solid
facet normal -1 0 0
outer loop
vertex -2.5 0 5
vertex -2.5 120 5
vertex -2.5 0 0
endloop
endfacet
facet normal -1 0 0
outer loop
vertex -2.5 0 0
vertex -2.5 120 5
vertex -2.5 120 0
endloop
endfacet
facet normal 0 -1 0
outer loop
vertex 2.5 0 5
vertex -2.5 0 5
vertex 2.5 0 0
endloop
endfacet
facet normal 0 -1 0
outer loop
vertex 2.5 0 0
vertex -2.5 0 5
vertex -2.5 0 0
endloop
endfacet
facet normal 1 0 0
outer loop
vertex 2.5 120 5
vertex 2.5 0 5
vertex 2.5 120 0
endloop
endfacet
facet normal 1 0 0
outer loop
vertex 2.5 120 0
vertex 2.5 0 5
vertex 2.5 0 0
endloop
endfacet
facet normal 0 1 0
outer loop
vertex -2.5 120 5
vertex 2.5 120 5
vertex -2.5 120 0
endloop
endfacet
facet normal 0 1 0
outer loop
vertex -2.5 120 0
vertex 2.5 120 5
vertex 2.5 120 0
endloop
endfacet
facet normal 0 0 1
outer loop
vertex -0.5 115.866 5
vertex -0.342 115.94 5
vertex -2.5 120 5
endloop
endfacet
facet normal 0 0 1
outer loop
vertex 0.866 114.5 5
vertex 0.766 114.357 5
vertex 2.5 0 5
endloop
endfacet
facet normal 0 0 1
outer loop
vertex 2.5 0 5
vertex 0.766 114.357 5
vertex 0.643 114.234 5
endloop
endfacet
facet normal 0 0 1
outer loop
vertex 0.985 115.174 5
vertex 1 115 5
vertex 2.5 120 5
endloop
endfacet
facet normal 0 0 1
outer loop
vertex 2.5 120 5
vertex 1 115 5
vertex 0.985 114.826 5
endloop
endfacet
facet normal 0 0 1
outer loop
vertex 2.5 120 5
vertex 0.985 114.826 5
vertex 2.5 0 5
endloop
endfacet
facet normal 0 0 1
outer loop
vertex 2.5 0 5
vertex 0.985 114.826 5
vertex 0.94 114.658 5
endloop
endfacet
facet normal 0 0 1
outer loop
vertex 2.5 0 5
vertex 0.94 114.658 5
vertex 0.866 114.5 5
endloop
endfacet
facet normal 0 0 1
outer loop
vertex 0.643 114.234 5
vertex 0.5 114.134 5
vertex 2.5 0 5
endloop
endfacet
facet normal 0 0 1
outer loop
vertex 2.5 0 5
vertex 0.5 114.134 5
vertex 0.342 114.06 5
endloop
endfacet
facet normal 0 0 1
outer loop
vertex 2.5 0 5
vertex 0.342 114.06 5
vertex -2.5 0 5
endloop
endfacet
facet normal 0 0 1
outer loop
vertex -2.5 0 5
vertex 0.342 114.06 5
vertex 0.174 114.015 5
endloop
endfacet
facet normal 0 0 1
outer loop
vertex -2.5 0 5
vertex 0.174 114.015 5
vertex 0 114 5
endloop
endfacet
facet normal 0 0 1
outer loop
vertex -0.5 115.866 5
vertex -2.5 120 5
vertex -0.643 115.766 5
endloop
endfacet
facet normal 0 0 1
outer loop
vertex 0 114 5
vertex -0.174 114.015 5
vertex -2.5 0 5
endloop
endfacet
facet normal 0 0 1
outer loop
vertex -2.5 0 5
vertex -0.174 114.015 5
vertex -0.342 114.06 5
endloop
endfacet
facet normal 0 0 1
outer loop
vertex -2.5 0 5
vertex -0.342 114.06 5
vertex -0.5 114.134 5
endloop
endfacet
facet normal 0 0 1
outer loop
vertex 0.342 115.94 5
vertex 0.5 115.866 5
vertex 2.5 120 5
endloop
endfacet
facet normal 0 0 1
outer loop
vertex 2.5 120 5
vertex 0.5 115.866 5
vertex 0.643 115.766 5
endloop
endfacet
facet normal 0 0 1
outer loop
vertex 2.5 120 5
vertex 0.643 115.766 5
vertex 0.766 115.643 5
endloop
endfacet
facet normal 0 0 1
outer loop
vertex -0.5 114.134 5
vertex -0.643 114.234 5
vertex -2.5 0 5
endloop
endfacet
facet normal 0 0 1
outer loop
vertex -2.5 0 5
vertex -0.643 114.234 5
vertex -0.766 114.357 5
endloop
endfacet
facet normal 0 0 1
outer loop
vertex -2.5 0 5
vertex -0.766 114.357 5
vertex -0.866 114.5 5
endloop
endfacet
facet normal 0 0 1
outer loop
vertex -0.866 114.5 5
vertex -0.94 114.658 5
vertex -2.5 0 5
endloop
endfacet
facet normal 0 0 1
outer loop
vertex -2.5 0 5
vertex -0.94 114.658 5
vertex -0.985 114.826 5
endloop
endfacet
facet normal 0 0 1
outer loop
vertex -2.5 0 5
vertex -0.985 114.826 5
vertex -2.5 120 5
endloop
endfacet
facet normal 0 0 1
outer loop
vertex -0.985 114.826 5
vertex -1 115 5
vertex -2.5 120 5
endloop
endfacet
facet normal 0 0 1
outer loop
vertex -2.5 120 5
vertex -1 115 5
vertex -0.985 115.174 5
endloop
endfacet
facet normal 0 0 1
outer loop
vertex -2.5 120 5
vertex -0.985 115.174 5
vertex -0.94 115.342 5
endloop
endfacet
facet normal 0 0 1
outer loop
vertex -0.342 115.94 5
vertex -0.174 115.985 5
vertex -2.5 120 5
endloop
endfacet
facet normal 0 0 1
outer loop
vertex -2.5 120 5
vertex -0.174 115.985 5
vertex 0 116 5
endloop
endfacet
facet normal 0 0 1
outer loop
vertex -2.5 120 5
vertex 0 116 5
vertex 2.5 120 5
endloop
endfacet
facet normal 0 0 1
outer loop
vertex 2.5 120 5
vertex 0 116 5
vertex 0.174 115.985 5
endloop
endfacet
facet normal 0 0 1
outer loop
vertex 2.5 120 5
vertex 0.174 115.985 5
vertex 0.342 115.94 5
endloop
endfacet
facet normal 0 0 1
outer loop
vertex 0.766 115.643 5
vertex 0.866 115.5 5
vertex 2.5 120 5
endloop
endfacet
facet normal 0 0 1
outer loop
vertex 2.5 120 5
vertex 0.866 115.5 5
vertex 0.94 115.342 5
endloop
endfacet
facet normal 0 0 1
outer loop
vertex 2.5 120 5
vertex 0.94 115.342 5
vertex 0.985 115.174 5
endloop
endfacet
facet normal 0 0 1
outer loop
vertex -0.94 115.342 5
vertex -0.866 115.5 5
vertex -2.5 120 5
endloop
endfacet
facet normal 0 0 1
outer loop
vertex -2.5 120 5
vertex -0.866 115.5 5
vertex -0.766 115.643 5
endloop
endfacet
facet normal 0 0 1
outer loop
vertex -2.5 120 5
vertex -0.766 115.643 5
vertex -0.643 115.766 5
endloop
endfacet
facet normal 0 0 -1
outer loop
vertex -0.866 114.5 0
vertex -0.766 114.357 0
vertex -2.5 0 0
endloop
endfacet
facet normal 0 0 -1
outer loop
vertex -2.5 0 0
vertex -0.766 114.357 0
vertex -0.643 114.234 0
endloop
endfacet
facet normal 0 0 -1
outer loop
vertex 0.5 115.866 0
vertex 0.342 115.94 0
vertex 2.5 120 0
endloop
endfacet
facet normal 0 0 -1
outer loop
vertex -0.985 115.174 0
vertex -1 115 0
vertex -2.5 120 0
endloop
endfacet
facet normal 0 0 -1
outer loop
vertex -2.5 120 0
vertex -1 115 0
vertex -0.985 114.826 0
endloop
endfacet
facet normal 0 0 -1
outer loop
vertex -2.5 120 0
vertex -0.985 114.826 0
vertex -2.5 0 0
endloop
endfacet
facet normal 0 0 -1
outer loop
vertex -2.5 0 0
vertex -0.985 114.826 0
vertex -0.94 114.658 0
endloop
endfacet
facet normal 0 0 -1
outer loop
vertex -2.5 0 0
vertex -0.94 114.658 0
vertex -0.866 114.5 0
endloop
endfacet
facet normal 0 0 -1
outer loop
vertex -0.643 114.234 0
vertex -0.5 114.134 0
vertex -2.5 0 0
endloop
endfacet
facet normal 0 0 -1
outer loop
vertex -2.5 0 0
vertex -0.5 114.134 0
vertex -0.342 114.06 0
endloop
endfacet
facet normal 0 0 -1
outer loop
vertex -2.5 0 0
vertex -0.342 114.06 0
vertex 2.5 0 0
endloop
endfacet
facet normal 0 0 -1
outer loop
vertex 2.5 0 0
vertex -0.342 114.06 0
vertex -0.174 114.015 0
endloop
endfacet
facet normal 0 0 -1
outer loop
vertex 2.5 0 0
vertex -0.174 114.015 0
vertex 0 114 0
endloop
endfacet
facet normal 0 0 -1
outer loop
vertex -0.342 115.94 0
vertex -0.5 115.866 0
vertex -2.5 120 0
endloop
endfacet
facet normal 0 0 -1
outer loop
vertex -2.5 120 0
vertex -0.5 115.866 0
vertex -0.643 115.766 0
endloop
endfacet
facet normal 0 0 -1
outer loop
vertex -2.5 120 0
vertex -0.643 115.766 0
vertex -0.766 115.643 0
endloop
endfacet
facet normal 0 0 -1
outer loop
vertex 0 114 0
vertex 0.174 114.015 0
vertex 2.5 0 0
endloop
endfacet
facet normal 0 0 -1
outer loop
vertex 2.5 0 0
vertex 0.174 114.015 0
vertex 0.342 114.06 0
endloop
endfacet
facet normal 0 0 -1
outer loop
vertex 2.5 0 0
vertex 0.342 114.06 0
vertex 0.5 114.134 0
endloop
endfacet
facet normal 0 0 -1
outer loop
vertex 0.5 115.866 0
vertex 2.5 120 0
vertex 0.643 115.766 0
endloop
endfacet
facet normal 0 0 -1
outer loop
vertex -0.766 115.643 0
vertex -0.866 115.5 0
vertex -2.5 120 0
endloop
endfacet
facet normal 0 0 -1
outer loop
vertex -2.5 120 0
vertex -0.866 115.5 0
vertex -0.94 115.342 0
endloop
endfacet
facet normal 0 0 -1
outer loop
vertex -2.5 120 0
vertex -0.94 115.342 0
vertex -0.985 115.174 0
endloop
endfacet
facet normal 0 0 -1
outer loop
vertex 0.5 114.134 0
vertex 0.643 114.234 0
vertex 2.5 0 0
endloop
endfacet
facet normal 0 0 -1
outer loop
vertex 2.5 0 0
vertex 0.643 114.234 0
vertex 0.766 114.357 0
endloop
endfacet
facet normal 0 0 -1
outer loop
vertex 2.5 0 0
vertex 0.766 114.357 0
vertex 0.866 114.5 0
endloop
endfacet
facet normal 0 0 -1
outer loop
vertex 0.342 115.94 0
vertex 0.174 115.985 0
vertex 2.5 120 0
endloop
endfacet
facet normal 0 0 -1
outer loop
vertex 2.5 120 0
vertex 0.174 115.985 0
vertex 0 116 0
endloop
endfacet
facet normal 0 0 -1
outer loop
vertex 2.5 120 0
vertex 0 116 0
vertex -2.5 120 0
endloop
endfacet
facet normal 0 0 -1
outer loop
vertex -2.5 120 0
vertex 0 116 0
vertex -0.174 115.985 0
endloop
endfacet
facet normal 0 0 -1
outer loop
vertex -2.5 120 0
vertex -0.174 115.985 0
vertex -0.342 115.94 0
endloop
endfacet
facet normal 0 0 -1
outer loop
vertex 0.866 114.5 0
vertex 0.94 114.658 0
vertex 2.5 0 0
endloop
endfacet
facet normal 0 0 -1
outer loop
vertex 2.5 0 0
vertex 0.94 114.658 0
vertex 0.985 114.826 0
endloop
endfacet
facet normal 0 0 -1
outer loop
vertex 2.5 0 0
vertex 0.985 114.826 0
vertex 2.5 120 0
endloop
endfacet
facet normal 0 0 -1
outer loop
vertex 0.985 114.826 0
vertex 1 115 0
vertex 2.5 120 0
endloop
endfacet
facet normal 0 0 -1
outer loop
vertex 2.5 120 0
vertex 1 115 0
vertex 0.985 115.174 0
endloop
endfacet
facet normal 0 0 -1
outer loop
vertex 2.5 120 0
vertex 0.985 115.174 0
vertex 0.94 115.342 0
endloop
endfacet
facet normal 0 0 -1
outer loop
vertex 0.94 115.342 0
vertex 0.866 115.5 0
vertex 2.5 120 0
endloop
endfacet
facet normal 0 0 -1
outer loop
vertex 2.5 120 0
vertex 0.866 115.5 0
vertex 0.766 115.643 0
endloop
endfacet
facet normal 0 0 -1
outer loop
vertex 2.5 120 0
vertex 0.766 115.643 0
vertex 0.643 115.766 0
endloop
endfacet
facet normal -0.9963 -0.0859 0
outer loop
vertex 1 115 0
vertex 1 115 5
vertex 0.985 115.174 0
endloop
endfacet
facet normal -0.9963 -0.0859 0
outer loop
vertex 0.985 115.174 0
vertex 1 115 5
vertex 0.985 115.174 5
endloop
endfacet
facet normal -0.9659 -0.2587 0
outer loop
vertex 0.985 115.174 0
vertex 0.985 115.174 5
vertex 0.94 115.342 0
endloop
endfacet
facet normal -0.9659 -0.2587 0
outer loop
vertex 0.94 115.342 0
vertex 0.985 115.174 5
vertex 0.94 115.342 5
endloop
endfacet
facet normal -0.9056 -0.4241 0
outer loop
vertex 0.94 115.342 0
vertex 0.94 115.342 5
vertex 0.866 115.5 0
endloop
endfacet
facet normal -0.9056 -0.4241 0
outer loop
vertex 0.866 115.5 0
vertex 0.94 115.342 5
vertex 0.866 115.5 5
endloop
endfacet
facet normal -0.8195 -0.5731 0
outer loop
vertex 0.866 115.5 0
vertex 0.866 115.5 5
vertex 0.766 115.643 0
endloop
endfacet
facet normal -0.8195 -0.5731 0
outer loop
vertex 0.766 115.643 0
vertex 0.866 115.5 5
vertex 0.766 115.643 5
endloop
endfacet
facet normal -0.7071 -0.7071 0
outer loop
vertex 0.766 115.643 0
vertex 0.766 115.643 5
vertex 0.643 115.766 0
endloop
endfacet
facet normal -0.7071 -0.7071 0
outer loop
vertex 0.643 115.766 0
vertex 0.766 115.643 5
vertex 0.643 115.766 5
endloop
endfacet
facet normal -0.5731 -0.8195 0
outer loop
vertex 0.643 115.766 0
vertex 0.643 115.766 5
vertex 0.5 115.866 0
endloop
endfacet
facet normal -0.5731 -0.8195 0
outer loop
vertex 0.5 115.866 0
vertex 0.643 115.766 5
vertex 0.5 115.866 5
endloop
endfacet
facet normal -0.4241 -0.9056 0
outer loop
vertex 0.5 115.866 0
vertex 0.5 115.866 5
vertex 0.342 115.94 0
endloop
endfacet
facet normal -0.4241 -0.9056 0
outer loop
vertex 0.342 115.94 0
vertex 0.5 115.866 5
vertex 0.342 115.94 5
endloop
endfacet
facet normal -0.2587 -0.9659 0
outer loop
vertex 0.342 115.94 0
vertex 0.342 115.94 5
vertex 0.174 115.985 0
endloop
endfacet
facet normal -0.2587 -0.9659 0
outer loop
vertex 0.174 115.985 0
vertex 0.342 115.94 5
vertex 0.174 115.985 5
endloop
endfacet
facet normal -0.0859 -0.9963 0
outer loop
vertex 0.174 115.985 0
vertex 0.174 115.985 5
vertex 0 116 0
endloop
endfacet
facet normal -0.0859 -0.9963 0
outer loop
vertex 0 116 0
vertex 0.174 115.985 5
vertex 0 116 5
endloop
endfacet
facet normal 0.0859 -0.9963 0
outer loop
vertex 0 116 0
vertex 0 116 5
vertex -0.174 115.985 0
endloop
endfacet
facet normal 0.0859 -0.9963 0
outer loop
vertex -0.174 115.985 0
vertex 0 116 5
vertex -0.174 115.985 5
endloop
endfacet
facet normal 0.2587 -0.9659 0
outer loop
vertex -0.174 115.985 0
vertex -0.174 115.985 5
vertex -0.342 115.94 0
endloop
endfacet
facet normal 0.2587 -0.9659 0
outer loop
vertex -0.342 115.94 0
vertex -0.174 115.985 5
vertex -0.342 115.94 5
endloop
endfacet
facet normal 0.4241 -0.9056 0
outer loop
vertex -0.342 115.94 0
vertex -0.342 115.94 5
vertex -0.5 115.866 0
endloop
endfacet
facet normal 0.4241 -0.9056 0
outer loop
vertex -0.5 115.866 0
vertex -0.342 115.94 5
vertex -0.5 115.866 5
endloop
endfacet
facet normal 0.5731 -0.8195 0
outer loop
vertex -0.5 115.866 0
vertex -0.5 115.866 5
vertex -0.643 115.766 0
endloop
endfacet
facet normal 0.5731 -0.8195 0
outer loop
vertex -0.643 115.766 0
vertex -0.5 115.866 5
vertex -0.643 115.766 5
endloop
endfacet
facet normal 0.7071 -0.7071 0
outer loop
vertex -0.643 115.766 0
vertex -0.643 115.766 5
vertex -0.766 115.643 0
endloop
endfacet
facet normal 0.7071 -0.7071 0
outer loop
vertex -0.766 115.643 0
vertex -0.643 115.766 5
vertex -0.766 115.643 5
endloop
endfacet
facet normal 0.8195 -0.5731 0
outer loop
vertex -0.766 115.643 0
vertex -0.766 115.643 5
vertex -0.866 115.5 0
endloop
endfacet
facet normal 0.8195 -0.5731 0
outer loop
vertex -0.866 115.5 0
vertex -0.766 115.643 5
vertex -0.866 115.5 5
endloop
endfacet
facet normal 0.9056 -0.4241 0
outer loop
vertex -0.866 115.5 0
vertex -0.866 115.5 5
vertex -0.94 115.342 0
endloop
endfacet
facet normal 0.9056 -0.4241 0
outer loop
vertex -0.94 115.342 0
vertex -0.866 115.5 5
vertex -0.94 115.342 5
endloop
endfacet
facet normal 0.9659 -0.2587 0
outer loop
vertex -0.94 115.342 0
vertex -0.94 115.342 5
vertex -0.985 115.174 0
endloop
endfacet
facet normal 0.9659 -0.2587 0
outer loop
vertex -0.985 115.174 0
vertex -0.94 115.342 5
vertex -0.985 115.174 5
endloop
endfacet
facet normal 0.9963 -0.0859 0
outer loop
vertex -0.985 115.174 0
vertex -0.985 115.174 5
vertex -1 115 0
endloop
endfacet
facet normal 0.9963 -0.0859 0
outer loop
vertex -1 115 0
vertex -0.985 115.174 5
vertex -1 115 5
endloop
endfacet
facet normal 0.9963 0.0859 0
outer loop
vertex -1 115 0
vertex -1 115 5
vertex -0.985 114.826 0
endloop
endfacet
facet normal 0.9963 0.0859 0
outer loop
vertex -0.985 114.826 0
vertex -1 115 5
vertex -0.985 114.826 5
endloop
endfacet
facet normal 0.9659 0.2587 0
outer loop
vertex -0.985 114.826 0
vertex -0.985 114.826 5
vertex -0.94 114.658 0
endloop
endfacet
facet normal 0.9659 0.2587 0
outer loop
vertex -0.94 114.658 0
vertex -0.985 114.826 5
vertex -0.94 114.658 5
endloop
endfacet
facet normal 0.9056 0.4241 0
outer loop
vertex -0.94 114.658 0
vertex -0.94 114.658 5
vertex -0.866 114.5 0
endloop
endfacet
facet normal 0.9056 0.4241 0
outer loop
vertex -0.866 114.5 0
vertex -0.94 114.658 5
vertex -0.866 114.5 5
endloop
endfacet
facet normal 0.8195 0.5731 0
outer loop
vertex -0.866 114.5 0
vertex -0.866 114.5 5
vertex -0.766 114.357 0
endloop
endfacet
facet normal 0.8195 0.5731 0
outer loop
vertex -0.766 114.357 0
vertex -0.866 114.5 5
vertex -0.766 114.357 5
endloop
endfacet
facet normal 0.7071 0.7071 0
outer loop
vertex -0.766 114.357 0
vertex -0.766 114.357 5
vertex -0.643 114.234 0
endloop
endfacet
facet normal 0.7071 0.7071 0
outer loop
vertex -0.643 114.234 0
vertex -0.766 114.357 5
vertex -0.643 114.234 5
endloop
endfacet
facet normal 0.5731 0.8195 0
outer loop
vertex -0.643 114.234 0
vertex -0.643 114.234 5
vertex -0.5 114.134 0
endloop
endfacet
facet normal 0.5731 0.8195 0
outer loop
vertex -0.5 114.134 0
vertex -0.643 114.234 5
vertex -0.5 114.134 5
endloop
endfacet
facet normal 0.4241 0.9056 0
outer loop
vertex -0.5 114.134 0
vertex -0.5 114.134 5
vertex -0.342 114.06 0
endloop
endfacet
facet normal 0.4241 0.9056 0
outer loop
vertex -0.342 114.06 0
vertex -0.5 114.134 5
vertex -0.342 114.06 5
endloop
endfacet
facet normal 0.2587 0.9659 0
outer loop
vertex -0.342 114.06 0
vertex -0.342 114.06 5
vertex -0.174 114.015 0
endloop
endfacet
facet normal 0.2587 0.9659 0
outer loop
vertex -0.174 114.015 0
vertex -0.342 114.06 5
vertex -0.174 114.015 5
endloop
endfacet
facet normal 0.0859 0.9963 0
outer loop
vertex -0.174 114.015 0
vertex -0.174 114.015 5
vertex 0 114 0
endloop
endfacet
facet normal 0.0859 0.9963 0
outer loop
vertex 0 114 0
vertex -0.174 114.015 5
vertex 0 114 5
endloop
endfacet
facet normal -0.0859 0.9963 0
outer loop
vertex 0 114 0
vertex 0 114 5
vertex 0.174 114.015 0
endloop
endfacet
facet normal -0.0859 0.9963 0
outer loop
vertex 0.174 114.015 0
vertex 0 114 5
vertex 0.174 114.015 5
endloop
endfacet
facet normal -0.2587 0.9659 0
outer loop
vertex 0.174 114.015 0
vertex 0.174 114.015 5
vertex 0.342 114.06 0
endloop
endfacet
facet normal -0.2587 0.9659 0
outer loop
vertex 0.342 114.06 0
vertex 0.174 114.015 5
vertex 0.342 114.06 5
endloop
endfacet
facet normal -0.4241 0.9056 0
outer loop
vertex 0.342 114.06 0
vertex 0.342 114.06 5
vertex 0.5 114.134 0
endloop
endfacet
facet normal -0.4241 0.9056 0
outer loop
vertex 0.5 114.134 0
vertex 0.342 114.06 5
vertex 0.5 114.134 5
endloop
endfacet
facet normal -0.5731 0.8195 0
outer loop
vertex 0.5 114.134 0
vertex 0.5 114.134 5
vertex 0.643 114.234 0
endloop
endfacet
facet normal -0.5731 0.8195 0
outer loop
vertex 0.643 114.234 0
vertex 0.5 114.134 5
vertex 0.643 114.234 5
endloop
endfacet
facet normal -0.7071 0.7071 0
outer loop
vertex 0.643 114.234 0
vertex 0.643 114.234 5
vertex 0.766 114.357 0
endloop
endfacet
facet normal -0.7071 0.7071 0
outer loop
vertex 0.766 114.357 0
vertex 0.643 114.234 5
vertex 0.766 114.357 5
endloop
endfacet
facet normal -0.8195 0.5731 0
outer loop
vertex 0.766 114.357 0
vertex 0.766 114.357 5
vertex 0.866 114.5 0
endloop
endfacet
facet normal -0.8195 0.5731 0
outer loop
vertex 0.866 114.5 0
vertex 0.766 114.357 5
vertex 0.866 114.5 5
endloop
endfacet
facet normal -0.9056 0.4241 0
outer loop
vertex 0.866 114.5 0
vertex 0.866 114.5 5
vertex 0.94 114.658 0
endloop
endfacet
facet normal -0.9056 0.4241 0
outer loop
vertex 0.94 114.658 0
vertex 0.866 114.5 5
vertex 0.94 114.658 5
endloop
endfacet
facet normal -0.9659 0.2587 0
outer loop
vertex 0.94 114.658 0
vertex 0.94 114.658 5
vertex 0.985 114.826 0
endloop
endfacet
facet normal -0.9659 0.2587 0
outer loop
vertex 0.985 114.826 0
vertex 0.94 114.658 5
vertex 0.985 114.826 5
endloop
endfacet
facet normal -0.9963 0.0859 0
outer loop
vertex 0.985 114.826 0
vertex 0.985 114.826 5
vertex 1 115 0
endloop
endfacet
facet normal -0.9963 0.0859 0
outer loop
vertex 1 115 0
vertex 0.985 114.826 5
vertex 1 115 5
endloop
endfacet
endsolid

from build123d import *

# Parameters (mm, degrees)
SKETCH1_W           = 5
SKETCH1_H           = 120
BOSS_EXTRUDE1_DEPTH = 5
SKETCH2_R           = 1
CUT_EXTRUDE1_DEPTH  = 10


with BuildPart() as part:
    # Sketch1 → Boss-Extrude1 (new body)
    with BuildSketch(Plane.XY):
        with Locations((0, 60)):
            Rectangle(SKETCH1_W, SKETCH1_H)
    extrude(amount=BOSS_EXTRUDE1_DEPTH)

    # Sketch2 → Cut-Extrude1 (cut, symmetric)
    with BuildSketch(Plane.XY):
        with Locations((0, 115)):
            Circle(SKETCH2_R)
    extrude(amount=CUT_EXTRUDE1_DEPTH, both=True, mode=Mode.SUBTRACT)


solid = part.part
